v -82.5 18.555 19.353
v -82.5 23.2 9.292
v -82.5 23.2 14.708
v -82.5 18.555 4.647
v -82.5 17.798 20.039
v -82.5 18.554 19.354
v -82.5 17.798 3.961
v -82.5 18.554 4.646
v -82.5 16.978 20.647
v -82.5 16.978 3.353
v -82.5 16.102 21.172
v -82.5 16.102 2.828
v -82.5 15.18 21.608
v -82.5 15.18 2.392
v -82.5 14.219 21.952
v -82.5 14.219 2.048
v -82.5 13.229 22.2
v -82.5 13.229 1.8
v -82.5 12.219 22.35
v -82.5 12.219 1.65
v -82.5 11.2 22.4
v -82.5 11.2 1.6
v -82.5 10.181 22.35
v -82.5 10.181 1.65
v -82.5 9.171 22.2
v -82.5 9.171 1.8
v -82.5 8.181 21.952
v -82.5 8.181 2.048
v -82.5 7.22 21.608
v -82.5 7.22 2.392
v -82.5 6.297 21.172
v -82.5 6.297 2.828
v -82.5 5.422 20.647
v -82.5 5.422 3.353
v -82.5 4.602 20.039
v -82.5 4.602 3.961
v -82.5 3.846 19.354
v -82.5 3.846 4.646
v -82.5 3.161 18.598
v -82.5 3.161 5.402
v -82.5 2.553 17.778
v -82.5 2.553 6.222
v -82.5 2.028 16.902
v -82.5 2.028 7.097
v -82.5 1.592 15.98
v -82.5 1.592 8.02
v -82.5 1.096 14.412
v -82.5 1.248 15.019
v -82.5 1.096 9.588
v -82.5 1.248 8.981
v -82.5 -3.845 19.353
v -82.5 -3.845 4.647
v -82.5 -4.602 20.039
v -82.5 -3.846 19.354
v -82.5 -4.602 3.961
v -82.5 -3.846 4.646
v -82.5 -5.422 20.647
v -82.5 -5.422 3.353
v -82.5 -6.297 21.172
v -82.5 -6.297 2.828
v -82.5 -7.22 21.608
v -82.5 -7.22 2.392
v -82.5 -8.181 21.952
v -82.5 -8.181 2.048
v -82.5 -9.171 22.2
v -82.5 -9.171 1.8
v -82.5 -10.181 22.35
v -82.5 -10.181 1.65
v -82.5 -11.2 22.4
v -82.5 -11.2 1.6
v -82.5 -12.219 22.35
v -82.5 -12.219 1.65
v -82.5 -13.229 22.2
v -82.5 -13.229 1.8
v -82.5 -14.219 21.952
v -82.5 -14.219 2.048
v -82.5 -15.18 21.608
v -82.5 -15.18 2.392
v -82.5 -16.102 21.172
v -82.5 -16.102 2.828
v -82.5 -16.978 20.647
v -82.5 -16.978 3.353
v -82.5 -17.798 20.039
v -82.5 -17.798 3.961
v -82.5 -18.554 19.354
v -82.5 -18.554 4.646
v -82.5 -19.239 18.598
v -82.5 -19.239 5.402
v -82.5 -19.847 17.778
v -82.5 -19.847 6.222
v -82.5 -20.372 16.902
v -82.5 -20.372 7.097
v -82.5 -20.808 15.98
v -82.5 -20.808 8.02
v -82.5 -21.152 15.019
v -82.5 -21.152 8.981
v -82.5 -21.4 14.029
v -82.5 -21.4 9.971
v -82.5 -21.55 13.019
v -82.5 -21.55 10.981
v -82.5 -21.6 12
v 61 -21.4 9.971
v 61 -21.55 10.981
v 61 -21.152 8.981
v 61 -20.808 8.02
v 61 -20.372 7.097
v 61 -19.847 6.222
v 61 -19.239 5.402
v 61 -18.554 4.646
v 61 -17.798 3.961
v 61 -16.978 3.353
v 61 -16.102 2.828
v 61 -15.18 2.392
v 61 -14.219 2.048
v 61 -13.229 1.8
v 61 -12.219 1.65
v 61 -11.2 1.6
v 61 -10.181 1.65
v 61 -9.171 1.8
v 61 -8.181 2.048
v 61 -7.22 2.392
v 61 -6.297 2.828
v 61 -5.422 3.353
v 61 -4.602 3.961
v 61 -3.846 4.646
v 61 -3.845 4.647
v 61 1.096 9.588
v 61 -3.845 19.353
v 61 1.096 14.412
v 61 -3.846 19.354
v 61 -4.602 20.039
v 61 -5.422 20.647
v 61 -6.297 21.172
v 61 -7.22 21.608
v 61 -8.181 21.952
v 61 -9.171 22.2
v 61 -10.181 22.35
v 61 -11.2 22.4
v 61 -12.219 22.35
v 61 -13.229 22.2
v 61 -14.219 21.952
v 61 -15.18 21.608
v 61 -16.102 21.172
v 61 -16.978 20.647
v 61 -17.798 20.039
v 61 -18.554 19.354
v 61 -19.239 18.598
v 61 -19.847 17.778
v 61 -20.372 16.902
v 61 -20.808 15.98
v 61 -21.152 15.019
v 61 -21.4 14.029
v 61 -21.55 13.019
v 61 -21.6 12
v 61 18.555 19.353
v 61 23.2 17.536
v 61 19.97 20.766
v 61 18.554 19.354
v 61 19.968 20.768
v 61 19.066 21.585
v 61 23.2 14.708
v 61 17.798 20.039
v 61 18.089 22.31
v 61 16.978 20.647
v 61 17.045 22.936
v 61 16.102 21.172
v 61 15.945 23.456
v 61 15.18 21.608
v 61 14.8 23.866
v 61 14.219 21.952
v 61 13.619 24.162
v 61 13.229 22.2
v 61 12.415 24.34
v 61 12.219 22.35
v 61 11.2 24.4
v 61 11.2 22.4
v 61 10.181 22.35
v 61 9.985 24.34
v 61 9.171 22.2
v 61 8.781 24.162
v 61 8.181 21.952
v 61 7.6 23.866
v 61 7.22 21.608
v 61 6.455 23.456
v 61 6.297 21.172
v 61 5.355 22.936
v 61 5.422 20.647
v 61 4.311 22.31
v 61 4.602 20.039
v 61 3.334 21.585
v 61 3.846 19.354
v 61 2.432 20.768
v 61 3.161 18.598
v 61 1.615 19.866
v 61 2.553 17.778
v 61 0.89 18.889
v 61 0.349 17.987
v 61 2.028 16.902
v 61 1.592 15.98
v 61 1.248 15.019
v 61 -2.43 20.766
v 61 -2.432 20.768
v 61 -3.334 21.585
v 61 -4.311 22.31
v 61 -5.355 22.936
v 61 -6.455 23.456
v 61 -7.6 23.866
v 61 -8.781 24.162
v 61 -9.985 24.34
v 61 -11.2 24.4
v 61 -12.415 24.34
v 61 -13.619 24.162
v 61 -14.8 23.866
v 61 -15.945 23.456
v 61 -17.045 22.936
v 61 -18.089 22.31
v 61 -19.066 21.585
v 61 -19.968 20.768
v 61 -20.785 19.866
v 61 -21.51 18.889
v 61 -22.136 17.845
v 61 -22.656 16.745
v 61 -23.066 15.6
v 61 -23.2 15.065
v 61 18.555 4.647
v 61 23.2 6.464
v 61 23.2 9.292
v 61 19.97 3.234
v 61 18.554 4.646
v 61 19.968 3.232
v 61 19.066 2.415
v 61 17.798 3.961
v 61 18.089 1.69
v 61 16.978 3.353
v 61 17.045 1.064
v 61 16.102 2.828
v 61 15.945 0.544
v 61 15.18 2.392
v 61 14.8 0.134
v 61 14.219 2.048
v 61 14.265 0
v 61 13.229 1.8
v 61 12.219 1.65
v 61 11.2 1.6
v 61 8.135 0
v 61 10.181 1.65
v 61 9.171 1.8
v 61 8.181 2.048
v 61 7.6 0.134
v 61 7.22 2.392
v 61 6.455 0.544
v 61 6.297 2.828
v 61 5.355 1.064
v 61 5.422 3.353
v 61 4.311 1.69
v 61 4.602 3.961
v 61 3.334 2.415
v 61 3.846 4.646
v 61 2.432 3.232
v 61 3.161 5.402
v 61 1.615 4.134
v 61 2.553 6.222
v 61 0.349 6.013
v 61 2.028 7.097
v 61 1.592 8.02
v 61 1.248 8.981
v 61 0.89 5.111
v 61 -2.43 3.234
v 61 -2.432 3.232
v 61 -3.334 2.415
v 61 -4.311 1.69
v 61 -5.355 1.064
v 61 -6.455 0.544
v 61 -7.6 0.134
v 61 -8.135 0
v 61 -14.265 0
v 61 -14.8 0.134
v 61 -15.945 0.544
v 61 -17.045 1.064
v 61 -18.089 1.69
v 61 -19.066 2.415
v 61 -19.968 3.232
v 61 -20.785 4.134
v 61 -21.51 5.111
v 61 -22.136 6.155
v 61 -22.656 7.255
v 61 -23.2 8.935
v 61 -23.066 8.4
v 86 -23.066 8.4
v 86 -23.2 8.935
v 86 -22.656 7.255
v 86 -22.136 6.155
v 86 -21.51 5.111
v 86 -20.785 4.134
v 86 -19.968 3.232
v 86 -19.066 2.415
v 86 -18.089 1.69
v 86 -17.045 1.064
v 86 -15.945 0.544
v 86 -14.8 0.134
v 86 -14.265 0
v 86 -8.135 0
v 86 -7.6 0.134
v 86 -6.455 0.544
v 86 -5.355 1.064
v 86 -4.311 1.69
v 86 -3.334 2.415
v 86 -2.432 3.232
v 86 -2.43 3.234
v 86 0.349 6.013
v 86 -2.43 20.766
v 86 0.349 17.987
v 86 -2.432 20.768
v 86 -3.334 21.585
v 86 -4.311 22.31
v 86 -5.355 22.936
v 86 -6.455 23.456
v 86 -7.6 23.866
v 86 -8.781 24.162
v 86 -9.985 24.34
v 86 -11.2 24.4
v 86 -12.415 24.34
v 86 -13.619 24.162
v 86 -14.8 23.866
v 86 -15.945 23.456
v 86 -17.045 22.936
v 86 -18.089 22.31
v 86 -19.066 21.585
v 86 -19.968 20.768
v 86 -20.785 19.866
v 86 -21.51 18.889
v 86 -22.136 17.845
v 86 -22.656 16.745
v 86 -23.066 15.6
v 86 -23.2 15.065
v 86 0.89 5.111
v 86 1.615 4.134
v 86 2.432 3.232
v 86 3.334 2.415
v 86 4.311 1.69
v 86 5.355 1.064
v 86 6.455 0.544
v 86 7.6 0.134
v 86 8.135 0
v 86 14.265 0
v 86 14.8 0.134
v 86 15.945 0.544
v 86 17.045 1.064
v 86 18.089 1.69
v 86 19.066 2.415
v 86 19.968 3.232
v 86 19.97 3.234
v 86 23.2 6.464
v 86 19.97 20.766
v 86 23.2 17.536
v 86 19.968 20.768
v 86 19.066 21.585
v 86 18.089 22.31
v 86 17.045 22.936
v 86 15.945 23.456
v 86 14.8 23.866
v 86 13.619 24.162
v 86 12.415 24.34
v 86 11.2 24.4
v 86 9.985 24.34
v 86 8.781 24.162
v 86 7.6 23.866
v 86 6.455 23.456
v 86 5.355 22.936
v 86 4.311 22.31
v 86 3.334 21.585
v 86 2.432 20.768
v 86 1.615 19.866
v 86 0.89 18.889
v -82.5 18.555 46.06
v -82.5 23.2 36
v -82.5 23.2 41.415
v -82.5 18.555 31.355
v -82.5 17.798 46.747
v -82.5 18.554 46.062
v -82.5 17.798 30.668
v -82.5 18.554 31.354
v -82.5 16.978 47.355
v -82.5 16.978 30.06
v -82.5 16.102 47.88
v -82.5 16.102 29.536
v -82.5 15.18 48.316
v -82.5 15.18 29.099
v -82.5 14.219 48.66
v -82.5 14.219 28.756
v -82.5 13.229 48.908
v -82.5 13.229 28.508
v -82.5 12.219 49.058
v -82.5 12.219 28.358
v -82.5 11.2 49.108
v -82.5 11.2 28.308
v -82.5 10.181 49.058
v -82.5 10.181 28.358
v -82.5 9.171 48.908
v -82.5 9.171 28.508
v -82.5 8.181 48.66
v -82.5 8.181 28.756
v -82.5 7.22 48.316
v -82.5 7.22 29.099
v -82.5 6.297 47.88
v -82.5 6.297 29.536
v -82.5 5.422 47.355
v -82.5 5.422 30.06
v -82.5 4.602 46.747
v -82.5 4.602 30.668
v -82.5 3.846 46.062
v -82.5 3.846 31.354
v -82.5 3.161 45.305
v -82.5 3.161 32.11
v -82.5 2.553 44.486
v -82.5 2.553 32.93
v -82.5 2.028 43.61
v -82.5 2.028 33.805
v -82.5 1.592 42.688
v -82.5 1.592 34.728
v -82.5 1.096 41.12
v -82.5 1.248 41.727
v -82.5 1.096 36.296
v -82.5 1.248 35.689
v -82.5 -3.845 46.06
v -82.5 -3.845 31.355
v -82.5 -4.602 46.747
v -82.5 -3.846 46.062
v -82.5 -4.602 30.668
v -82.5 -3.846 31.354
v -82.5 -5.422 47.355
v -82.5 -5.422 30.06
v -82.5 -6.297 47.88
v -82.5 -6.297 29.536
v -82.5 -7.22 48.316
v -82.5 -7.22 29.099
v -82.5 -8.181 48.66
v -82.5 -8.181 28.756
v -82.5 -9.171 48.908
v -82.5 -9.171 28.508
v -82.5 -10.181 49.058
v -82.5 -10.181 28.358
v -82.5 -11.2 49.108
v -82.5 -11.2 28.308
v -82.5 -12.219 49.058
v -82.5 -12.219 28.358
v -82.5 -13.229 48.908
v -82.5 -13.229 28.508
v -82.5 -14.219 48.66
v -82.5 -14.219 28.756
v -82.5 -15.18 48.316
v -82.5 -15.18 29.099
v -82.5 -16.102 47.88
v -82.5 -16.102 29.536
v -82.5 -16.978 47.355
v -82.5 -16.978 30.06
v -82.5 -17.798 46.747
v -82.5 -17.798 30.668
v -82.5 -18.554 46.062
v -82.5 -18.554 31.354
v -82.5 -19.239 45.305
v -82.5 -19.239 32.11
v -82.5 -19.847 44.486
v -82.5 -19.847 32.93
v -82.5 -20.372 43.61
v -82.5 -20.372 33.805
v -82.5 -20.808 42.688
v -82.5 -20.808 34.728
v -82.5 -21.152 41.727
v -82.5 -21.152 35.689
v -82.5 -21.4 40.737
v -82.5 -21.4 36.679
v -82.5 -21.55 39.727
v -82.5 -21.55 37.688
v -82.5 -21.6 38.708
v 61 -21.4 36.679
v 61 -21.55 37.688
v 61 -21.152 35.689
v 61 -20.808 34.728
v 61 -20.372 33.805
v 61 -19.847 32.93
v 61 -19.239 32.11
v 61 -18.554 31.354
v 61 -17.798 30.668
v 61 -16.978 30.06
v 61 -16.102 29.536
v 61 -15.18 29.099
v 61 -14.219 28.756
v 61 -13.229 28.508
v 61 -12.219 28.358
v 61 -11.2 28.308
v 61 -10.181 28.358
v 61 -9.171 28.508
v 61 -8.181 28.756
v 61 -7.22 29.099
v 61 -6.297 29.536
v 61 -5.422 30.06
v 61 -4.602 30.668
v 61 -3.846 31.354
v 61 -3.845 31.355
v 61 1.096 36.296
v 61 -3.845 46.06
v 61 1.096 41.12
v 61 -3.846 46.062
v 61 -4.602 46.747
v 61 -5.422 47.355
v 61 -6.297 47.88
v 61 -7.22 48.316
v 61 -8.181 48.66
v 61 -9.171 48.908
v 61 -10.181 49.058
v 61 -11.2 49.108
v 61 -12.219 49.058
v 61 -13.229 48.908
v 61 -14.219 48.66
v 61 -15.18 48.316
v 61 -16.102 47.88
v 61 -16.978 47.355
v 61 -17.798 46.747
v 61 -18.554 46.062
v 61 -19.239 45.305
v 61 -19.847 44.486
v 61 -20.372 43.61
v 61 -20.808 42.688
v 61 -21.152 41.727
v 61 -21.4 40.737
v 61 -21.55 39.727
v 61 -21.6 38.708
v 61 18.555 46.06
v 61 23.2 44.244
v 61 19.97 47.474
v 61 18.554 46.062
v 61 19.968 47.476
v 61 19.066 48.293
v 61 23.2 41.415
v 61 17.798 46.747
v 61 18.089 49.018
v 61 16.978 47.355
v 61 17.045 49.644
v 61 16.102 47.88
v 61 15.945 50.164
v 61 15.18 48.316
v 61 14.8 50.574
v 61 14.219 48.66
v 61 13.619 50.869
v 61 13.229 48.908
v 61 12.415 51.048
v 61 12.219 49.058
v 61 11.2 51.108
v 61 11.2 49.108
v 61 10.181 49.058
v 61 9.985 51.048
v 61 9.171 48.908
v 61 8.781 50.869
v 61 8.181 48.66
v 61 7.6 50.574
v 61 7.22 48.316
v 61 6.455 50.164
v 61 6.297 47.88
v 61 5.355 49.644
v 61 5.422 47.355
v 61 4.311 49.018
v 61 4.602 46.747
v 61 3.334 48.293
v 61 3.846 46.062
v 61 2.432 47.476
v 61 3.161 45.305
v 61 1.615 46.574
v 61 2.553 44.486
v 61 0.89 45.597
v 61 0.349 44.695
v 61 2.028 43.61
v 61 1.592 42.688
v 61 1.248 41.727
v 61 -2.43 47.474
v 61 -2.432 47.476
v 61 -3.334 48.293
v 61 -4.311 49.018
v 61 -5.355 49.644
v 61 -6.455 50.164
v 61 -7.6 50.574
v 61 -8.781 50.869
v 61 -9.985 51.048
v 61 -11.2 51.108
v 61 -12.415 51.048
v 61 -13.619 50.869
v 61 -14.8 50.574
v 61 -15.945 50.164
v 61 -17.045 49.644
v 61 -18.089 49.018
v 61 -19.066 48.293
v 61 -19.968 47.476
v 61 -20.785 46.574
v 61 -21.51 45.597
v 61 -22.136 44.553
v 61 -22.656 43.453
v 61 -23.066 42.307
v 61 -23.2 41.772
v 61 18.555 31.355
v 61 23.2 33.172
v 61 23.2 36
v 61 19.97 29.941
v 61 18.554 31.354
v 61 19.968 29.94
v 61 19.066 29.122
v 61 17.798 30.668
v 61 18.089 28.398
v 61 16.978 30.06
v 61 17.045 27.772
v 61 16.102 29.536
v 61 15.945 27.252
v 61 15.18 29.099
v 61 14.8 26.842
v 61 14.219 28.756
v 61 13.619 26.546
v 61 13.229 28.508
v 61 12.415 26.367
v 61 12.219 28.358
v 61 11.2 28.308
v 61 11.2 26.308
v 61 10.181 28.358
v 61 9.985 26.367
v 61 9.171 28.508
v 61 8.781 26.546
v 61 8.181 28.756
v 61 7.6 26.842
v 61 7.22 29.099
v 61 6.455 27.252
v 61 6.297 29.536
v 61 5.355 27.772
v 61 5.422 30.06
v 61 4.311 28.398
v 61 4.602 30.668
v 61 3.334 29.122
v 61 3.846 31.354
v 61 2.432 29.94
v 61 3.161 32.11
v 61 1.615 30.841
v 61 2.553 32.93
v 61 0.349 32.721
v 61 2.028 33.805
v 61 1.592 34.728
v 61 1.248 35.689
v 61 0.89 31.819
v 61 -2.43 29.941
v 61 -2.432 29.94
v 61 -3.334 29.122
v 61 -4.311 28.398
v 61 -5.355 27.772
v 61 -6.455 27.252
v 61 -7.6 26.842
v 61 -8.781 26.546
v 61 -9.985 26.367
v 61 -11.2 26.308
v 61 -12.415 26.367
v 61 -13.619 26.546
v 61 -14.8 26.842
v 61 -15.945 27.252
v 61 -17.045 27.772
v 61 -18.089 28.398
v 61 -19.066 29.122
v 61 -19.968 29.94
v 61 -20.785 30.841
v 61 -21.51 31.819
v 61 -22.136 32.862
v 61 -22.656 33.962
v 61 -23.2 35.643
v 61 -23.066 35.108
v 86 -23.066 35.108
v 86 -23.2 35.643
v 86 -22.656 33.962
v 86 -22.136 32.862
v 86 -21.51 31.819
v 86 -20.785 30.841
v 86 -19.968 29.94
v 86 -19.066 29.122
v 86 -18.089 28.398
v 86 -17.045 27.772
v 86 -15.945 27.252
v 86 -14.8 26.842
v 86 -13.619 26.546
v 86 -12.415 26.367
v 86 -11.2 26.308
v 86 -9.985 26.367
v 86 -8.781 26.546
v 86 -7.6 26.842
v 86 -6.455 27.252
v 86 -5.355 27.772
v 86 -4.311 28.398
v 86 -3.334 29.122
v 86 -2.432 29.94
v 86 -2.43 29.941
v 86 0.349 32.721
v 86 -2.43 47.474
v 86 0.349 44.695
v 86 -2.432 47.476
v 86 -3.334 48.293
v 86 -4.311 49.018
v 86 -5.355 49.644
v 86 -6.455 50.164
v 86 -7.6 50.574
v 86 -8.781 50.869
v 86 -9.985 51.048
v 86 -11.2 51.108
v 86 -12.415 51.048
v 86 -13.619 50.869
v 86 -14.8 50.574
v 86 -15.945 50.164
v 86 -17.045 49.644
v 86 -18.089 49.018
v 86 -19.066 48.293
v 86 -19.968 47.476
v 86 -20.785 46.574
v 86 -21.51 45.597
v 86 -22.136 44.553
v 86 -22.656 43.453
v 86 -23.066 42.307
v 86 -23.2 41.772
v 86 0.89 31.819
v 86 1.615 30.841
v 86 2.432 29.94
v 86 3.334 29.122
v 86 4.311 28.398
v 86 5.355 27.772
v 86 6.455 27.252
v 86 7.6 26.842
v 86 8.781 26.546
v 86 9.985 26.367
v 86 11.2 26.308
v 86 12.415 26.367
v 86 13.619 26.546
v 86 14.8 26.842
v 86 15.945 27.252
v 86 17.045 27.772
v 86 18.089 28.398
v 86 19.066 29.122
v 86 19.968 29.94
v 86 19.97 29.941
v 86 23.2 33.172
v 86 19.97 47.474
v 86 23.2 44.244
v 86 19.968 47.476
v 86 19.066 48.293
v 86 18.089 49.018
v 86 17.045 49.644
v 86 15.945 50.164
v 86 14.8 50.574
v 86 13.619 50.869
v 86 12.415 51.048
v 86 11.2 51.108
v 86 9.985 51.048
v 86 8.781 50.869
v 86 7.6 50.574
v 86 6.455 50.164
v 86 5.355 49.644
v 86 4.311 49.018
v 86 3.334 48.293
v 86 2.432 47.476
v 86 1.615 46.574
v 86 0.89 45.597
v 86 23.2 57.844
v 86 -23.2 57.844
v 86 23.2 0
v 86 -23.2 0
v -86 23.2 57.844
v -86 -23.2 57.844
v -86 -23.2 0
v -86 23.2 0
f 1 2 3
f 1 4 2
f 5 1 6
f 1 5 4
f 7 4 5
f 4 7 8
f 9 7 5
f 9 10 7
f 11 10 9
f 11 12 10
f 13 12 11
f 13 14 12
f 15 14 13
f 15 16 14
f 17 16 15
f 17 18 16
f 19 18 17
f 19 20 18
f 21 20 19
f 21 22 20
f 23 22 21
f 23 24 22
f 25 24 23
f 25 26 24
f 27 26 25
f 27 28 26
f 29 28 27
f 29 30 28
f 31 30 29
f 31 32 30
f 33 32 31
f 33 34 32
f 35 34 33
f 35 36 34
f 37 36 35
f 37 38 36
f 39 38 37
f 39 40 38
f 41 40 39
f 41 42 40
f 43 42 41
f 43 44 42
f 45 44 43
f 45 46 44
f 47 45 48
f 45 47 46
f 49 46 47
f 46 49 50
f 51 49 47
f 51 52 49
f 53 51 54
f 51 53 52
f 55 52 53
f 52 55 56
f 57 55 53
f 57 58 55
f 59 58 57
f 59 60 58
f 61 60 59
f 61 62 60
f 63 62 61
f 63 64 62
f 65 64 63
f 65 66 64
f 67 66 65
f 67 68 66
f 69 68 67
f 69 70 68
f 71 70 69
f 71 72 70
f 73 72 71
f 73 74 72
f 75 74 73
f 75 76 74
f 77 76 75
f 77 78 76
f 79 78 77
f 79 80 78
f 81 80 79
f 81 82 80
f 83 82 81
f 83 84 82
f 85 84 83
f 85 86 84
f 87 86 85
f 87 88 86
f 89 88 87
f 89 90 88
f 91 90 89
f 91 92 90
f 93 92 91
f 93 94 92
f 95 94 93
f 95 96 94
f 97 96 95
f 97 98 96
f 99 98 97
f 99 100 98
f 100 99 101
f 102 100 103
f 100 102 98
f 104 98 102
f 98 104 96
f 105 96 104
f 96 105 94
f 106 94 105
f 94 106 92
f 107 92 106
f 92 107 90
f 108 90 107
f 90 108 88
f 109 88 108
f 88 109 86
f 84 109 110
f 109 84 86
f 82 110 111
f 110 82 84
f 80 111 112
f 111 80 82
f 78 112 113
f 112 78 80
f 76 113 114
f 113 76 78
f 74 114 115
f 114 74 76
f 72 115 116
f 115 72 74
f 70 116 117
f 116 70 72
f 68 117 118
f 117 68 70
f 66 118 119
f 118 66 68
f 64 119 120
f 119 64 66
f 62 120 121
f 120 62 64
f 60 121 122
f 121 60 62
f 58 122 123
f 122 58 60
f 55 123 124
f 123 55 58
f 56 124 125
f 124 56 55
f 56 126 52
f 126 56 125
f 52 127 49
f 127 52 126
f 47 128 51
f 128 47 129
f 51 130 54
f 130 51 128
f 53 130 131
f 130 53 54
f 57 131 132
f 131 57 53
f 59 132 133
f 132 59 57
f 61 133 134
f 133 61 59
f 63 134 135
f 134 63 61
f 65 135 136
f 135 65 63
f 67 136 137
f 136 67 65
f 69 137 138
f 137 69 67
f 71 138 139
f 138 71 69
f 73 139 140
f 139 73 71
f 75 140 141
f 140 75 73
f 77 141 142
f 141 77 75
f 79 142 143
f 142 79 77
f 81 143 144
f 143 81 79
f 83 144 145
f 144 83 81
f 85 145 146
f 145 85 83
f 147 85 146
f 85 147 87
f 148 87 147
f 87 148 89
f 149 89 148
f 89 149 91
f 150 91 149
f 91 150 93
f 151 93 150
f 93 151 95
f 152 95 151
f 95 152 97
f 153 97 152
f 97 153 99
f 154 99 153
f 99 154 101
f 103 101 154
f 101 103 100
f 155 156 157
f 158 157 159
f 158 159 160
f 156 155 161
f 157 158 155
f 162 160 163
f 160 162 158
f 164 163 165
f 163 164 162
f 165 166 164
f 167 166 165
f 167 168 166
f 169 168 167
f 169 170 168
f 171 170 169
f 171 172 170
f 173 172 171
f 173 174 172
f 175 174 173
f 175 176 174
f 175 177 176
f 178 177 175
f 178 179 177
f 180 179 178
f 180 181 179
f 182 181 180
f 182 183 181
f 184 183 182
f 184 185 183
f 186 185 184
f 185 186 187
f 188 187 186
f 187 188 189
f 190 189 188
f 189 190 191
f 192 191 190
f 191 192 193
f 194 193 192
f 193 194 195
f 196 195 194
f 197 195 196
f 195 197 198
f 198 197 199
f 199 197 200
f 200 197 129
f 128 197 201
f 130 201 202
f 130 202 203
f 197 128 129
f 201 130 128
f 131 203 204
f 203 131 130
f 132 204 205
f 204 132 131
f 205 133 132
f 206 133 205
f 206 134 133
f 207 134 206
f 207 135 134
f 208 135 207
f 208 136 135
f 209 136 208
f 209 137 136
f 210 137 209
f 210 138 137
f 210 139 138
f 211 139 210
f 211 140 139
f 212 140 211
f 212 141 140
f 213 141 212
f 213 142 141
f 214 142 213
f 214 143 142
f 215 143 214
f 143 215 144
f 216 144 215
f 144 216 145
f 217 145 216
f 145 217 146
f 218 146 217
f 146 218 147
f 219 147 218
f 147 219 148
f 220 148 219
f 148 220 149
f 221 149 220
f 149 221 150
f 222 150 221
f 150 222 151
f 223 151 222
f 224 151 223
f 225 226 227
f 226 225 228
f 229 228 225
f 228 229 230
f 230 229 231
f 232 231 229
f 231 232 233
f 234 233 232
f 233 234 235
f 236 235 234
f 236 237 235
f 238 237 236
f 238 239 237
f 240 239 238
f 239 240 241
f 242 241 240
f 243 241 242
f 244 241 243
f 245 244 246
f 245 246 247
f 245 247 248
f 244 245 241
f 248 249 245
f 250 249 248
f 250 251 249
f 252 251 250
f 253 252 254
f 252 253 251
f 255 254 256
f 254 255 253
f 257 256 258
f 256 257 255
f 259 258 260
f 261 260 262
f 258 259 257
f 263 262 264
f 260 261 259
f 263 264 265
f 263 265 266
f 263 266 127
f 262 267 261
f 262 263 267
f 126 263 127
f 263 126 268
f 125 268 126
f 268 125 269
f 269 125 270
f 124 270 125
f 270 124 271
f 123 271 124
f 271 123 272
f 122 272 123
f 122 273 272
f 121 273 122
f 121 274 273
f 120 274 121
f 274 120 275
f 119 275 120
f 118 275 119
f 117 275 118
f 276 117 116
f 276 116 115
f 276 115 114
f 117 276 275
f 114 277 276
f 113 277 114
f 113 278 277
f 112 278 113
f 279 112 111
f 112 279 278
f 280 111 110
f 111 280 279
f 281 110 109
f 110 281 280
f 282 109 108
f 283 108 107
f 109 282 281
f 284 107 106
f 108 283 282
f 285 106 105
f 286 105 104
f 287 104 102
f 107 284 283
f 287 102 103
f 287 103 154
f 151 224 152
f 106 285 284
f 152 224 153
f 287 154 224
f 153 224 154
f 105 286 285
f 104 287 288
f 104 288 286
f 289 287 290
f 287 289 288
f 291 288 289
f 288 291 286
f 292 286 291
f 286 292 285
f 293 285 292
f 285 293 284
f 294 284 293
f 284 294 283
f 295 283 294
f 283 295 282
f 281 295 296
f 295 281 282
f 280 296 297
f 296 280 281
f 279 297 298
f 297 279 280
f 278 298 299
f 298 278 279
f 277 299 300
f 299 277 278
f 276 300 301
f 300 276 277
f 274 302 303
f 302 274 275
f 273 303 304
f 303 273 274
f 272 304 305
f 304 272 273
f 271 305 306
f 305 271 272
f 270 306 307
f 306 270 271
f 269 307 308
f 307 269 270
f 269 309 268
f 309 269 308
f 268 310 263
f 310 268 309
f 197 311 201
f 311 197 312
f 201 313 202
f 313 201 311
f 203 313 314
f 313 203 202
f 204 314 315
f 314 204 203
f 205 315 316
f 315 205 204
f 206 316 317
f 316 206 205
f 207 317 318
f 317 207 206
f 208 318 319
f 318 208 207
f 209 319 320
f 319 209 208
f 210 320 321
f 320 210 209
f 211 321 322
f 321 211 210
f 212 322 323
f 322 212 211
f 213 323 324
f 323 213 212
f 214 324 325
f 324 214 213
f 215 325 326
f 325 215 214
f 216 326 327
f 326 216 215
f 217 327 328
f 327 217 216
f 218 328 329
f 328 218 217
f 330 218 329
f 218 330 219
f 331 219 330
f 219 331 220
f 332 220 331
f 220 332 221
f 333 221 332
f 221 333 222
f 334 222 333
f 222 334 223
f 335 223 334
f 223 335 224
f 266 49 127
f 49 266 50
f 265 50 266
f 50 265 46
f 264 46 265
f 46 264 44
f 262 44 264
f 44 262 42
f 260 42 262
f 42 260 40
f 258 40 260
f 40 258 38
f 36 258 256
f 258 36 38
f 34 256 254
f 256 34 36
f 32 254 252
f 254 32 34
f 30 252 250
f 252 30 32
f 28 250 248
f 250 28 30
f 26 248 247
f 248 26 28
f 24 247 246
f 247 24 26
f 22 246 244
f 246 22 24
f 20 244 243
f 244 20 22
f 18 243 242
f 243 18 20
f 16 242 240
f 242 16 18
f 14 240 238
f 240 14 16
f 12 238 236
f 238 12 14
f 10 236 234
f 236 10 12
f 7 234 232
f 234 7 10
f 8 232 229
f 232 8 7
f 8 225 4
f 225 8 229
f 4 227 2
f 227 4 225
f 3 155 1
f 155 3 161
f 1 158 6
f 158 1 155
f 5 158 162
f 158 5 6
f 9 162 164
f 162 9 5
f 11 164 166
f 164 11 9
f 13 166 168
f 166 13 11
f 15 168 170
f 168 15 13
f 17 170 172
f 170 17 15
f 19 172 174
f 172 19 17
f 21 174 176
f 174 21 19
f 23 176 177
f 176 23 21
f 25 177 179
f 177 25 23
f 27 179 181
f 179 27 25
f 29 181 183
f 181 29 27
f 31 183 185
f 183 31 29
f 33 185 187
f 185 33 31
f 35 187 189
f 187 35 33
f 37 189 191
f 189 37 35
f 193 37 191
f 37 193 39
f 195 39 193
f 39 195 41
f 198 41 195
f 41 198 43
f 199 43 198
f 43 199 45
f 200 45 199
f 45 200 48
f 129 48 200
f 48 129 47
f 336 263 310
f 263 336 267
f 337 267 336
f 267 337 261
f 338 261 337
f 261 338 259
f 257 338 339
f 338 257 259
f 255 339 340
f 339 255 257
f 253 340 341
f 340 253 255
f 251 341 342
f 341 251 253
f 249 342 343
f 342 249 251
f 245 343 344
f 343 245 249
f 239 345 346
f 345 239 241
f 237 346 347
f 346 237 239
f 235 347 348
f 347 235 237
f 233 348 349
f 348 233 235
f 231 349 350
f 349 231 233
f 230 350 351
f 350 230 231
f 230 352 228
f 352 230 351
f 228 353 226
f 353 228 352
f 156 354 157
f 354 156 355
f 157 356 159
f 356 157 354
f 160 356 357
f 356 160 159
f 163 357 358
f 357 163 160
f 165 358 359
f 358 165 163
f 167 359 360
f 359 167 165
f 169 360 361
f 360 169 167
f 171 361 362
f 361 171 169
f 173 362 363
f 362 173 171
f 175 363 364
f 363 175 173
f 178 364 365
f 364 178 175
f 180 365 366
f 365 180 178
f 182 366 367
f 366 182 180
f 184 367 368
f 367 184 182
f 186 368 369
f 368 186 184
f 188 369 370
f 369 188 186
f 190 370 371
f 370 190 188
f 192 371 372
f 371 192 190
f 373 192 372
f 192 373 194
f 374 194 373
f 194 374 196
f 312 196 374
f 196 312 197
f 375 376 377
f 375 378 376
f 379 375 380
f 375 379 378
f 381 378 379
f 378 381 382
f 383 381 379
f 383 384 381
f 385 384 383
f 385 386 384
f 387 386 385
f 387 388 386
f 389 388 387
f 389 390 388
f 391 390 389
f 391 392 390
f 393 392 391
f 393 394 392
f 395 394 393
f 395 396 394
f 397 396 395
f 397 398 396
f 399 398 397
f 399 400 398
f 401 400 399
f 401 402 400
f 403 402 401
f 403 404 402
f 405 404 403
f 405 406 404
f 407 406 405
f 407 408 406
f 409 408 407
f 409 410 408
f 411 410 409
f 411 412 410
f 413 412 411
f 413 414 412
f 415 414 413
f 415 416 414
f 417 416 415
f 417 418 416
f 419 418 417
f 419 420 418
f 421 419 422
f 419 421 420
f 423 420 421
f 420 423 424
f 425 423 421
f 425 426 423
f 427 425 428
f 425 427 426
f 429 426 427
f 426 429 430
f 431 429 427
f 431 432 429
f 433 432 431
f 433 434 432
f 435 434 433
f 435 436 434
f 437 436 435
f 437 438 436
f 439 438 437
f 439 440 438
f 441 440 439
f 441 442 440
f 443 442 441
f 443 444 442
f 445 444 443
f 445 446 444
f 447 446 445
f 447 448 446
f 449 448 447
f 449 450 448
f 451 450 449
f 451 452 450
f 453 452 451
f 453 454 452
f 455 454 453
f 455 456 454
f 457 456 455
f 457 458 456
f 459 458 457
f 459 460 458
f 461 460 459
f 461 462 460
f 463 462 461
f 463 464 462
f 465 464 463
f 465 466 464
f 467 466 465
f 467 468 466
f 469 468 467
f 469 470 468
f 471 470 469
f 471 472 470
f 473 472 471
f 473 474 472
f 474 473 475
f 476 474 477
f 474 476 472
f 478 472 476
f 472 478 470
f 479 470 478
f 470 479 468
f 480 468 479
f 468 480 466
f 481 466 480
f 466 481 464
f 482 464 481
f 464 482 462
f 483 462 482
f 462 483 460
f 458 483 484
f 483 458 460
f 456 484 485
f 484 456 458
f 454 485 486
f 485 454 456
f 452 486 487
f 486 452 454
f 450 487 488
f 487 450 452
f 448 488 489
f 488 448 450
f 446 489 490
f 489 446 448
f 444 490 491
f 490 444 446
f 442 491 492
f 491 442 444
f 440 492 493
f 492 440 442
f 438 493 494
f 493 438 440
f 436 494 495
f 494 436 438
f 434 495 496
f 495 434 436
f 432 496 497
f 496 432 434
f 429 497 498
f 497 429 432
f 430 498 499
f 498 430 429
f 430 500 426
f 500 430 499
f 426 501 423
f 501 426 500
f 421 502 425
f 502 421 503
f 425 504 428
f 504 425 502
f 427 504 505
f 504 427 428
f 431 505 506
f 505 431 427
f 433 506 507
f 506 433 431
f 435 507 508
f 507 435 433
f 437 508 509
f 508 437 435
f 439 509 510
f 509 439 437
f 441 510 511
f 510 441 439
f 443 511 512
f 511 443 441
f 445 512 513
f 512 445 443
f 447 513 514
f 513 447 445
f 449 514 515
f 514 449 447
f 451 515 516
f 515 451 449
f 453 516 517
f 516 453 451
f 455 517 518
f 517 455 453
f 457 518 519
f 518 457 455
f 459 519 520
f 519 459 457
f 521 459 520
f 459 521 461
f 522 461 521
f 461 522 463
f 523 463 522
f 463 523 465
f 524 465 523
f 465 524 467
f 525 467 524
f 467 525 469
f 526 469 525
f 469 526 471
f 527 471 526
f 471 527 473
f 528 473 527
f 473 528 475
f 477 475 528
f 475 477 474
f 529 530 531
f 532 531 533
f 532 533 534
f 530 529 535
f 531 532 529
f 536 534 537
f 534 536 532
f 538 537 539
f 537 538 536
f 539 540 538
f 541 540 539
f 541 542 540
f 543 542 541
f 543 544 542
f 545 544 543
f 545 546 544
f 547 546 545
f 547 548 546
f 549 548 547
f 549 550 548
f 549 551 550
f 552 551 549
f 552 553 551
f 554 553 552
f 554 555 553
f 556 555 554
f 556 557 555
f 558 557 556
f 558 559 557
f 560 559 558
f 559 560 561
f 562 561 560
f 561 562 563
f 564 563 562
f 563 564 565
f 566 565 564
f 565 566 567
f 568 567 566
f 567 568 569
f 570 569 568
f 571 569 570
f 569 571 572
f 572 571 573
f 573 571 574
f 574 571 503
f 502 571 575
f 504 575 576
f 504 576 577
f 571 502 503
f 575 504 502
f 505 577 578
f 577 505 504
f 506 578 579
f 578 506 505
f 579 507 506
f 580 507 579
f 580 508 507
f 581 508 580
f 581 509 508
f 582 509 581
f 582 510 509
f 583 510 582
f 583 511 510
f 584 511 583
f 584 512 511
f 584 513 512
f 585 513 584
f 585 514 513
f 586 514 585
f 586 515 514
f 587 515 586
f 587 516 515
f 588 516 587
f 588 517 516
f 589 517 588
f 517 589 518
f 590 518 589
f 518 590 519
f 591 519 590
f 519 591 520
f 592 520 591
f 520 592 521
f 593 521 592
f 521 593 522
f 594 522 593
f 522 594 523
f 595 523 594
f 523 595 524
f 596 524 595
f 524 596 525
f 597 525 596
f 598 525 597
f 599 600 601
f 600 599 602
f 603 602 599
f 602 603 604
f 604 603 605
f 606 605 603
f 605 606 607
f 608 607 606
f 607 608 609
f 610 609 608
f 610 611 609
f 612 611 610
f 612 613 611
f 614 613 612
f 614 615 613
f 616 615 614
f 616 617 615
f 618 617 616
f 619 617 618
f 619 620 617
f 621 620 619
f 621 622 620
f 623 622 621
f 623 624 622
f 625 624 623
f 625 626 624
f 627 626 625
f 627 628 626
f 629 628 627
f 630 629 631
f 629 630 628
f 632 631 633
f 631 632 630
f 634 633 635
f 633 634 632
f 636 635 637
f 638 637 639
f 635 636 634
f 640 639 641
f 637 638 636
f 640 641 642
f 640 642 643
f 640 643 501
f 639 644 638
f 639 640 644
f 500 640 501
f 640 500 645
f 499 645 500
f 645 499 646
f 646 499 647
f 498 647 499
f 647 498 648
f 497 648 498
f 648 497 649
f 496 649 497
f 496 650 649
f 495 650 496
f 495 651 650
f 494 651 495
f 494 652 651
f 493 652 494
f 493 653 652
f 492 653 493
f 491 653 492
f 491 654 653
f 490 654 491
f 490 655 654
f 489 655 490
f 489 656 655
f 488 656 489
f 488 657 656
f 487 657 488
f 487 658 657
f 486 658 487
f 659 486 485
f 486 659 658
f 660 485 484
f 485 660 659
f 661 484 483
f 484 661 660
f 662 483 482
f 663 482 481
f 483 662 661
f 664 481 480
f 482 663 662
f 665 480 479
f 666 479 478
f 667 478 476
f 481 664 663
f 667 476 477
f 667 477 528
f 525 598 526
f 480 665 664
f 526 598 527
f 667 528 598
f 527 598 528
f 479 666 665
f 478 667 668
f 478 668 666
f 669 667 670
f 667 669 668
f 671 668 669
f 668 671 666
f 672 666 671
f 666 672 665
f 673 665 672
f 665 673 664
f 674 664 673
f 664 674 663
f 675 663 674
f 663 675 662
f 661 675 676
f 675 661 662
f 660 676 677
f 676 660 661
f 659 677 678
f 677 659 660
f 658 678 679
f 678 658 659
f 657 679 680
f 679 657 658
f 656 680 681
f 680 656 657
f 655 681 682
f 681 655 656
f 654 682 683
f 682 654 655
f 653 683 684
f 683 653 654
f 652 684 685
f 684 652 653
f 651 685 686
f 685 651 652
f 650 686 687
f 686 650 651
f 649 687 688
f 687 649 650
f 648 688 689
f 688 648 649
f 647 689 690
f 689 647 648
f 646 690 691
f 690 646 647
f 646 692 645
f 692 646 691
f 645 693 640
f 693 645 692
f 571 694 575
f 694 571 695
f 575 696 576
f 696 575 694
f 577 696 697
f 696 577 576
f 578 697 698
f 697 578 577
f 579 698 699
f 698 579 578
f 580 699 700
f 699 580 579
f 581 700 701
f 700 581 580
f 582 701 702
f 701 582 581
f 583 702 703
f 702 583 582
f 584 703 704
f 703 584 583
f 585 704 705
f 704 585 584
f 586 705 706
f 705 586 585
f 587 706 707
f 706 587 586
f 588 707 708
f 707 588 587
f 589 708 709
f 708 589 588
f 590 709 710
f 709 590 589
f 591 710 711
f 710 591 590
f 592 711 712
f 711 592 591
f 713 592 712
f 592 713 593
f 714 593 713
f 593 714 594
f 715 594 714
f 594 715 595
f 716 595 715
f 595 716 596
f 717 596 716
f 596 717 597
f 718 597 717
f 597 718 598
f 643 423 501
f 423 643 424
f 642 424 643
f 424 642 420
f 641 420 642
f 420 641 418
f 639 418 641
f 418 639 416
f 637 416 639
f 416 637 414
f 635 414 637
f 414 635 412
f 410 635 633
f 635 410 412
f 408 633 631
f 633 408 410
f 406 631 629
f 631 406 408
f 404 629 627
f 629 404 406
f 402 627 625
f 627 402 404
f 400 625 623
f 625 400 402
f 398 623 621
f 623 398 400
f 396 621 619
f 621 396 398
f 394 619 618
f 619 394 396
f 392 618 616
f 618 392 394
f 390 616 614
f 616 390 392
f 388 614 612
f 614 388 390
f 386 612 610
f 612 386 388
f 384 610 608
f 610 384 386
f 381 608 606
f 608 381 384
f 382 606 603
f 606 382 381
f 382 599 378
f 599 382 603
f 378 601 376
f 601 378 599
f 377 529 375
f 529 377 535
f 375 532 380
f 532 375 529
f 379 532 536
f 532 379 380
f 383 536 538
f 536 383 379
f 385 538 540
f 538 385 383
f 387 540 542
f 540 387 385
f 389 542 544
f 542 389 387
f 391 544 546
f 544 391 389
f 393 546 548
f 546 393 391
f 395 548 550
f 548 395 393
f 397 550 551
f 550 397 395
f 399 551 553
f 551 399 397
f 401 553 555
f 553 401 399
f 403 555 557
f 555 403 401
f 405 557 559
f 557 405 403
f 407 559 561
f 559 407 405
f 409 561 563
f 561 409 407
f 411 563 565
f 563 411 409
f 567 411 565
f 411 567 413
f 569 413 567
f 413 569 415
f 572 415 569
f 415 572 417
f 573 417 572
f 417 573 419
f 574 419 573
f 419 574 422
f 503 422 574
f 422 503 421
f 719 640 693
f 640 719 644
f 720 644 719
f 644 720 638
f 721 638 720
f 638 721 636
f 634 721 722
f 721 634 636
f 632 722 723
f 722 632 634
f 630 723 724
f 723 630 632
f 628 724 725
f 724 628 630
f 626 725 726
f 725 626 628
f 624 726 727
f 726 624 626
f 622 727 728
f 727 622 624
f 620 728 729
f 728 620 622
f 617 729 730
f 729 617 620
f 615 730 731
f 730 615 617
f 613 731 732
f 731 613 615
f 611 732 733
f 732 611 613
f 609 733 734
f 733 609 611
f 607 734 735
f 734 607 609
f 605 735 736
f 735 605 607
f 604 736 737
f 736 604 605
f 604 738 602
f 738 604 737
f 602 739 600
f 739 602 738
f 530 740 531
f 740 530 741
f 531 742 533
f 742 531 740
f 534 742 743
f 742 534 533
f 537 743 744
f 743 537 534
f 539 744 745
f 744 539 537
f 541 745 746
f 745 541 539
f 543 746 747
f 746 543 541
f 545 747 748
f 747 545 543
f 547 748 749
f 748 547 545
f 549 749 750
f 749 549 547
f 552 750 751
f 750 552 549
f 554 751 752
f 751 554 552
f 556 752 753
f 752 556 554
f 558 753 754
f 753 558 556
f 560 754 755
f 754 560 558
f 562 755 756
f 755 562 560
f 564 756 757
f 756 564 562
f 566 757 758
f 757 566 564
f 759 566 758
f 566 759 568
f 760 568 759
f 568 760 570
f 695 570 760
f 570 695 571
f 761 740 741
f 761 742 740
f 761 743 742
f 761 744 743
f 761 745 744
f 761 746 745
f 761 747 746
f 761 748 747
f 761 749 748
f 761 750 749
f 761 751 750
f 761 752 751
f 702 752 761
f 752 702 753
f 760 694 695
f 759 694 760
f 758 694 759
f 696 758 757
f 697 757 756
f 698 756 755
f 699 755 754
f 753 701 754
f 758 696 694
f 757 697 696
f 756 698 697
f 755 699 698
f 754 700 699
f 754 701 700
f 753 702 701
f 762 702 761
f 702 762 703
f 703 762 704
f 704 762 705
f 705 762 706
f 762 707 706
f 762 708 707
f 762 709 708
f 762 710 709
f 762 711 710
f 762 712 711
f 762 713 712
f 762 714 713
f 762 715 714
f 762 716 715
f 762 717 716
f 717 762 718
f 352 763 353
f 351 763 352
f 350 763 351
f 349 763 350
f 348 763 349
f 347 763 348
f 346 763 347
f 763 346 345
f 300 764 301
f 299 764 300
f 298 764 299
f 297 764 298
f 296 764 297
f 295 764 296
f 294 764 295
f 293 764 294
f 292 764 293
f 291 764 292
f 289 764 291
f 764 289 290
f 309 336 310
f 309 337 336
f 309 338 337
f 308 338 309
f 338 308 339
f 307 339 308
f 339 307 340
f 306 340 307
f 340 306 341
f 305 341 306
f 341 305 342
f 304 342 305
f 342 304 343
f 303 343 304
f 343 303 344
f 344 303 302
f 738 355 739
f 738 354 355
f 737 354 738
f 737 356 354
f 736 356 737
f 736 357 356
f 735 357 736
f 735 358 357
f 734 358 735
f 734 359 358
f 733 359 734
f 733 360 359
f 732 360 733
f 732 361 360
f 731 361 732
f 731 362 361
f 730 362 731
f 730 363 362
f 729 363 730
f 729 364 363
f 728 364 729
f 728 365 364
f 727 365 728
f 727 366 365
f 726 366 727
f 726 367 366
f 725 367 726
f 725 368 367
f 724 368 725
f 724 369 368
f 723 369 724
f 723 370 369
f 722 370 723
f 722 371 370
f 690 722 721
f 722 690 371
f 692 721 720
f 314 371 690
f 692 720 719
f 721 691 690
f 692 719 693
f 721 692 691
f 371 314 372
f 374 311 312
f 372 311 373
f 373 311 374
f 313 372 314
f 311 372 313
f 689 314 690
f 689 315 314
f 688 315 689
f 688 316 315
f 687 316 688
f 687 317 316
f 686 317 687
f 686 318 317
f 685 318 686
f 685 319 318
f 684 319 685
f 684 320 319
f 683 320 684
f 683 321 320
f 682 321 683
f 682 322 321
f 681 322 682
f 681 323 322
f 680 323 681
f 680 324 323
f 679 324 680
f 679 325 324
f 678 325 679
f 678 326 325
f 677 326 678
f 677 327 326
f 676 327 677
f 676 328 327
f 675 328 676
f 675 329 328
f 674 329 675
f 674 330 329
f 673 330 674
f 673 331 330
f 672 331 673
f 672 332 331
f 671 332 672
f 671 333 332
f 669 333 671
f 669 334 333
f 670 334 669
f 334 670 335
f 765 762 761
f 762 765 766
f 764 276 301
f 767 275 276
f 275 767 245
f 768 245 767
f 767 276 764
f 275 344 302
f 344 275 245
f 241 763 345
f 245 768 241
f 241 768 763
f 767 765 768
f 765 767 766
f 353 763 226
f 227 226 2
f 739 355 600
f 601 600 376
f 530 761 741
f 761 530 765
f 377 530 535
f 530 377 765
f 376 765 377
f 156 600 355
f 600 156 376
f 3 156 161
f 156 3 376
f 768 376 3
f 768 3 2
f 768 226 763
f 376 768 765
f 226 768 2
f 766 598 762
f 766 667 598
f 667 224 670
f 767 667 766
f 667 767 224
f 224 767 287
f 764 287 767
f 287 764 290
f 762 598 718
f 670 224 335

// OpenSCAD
// file: common.scad
// ============================================================
// common.scad — shared parameters + modules for all designs
// LOCKED PEN SPECIFICATION (do not change)
// ============================================================
PEN_L = 165;      // pen length (mm)
PEN_A = 17;       // pen cross-section minor
PEN_B = 20;       // pen cross-section major (used as diameter envelope)
CLEAR = 0.4;      // fit clearance
WALL  = 1.6;      // minimum wall thickness

$fn = 64;

RCH = PEN_B/2 + CLEAR;   // = 10.4  channel radius
EPS = 0.01;

// --- open-top U trough cut, axis along X, centered at local origin -----------
// Removes a lower half-cylinder of radius r plus a full-width vertical slot
// upward, so the channel is open at the top (no ceiling -> no overhang).
module trough_cut(len, r=RCH, top=80) {
    union() {
        rotate([0,90,0]) cylinder(h=len, r=r, center=true);
        translate([0,0,top/2]) cube([len, 2*r, top], center=true); // slot upward
    }
}

// --- teardrop hole, axis along X, centered at local origin --------------------
// 45-degree self-supporting apex pointing +Z so a horizontal bore can print
// without support.
module teardrop_cut(len, r=RCH) {
    rotate([0,90,0])
        linear_extrude(height=len, center=true)
            union() {
                circle(r=r);
                polygon([[ 0.7071*r, 0.7071*r],
                         [ 0,         1.4142*r],
                         [-0.7071*r,  0.7071*r]]);
            }
}

// --- dial relief: widened open-top pocket at one channel end -----------------
// place at the +X or -X end of a channel so the dose dial clears / can be turned
module dial_relief(end_x, r=RCH+2.2, len=28, top=80) {
    translate([end_x, 0, 0]) trough_cut(len, r, top);
}
// main file
// q1_grid4 — 2x2 enclosed teardrop grid (compact 4-pen brick)
// Family: clustered. Four pens in a tight 2-wide x 2-tall block; teardrop
// bores are self-supporting so the lower row prints without a ceiling overhang.
// Dial relief: a wider teardrop counterbore breaks out the +X end of each bore.
include <common.scad>

LBLK    = 172;
PITCH_Y = 2*RCH + WALL;            // 22.4  column spacing
ROW_DZ  = 2.4142*RCH + WALL;       // 26.7  row spacing (apex + clearance)
RR      = RCH + 2;                 // dial-relief radius

Y = [-PITCH_Y/2, PITCH_Y/2];
Z = [WALL + RCH, WALL + RCH + ROW_DZ];

WBLK = PITCH_Y + 2*RCH + 2*WALL;                 // 46.4  < 63.5
HBLK = Z[1] + 1.4142*RR + WALL;                  // enclose top relief apex
RELIEF_X = LBLK/2 - 10;                           // pokes through +X end

difference() {
    translate([0,0,HBLK/2]) cube([LBLK, WBLK, HBLK], center=true);
    for (zc = Z) for (yc = Y) {
        translate([0, yc, zc]) teardrop_cut(PEN_L);             // bore
        translate([RELIEF_X, yc, zc]) teardrop_cut(30, RR);    // dial relief
    }
}
